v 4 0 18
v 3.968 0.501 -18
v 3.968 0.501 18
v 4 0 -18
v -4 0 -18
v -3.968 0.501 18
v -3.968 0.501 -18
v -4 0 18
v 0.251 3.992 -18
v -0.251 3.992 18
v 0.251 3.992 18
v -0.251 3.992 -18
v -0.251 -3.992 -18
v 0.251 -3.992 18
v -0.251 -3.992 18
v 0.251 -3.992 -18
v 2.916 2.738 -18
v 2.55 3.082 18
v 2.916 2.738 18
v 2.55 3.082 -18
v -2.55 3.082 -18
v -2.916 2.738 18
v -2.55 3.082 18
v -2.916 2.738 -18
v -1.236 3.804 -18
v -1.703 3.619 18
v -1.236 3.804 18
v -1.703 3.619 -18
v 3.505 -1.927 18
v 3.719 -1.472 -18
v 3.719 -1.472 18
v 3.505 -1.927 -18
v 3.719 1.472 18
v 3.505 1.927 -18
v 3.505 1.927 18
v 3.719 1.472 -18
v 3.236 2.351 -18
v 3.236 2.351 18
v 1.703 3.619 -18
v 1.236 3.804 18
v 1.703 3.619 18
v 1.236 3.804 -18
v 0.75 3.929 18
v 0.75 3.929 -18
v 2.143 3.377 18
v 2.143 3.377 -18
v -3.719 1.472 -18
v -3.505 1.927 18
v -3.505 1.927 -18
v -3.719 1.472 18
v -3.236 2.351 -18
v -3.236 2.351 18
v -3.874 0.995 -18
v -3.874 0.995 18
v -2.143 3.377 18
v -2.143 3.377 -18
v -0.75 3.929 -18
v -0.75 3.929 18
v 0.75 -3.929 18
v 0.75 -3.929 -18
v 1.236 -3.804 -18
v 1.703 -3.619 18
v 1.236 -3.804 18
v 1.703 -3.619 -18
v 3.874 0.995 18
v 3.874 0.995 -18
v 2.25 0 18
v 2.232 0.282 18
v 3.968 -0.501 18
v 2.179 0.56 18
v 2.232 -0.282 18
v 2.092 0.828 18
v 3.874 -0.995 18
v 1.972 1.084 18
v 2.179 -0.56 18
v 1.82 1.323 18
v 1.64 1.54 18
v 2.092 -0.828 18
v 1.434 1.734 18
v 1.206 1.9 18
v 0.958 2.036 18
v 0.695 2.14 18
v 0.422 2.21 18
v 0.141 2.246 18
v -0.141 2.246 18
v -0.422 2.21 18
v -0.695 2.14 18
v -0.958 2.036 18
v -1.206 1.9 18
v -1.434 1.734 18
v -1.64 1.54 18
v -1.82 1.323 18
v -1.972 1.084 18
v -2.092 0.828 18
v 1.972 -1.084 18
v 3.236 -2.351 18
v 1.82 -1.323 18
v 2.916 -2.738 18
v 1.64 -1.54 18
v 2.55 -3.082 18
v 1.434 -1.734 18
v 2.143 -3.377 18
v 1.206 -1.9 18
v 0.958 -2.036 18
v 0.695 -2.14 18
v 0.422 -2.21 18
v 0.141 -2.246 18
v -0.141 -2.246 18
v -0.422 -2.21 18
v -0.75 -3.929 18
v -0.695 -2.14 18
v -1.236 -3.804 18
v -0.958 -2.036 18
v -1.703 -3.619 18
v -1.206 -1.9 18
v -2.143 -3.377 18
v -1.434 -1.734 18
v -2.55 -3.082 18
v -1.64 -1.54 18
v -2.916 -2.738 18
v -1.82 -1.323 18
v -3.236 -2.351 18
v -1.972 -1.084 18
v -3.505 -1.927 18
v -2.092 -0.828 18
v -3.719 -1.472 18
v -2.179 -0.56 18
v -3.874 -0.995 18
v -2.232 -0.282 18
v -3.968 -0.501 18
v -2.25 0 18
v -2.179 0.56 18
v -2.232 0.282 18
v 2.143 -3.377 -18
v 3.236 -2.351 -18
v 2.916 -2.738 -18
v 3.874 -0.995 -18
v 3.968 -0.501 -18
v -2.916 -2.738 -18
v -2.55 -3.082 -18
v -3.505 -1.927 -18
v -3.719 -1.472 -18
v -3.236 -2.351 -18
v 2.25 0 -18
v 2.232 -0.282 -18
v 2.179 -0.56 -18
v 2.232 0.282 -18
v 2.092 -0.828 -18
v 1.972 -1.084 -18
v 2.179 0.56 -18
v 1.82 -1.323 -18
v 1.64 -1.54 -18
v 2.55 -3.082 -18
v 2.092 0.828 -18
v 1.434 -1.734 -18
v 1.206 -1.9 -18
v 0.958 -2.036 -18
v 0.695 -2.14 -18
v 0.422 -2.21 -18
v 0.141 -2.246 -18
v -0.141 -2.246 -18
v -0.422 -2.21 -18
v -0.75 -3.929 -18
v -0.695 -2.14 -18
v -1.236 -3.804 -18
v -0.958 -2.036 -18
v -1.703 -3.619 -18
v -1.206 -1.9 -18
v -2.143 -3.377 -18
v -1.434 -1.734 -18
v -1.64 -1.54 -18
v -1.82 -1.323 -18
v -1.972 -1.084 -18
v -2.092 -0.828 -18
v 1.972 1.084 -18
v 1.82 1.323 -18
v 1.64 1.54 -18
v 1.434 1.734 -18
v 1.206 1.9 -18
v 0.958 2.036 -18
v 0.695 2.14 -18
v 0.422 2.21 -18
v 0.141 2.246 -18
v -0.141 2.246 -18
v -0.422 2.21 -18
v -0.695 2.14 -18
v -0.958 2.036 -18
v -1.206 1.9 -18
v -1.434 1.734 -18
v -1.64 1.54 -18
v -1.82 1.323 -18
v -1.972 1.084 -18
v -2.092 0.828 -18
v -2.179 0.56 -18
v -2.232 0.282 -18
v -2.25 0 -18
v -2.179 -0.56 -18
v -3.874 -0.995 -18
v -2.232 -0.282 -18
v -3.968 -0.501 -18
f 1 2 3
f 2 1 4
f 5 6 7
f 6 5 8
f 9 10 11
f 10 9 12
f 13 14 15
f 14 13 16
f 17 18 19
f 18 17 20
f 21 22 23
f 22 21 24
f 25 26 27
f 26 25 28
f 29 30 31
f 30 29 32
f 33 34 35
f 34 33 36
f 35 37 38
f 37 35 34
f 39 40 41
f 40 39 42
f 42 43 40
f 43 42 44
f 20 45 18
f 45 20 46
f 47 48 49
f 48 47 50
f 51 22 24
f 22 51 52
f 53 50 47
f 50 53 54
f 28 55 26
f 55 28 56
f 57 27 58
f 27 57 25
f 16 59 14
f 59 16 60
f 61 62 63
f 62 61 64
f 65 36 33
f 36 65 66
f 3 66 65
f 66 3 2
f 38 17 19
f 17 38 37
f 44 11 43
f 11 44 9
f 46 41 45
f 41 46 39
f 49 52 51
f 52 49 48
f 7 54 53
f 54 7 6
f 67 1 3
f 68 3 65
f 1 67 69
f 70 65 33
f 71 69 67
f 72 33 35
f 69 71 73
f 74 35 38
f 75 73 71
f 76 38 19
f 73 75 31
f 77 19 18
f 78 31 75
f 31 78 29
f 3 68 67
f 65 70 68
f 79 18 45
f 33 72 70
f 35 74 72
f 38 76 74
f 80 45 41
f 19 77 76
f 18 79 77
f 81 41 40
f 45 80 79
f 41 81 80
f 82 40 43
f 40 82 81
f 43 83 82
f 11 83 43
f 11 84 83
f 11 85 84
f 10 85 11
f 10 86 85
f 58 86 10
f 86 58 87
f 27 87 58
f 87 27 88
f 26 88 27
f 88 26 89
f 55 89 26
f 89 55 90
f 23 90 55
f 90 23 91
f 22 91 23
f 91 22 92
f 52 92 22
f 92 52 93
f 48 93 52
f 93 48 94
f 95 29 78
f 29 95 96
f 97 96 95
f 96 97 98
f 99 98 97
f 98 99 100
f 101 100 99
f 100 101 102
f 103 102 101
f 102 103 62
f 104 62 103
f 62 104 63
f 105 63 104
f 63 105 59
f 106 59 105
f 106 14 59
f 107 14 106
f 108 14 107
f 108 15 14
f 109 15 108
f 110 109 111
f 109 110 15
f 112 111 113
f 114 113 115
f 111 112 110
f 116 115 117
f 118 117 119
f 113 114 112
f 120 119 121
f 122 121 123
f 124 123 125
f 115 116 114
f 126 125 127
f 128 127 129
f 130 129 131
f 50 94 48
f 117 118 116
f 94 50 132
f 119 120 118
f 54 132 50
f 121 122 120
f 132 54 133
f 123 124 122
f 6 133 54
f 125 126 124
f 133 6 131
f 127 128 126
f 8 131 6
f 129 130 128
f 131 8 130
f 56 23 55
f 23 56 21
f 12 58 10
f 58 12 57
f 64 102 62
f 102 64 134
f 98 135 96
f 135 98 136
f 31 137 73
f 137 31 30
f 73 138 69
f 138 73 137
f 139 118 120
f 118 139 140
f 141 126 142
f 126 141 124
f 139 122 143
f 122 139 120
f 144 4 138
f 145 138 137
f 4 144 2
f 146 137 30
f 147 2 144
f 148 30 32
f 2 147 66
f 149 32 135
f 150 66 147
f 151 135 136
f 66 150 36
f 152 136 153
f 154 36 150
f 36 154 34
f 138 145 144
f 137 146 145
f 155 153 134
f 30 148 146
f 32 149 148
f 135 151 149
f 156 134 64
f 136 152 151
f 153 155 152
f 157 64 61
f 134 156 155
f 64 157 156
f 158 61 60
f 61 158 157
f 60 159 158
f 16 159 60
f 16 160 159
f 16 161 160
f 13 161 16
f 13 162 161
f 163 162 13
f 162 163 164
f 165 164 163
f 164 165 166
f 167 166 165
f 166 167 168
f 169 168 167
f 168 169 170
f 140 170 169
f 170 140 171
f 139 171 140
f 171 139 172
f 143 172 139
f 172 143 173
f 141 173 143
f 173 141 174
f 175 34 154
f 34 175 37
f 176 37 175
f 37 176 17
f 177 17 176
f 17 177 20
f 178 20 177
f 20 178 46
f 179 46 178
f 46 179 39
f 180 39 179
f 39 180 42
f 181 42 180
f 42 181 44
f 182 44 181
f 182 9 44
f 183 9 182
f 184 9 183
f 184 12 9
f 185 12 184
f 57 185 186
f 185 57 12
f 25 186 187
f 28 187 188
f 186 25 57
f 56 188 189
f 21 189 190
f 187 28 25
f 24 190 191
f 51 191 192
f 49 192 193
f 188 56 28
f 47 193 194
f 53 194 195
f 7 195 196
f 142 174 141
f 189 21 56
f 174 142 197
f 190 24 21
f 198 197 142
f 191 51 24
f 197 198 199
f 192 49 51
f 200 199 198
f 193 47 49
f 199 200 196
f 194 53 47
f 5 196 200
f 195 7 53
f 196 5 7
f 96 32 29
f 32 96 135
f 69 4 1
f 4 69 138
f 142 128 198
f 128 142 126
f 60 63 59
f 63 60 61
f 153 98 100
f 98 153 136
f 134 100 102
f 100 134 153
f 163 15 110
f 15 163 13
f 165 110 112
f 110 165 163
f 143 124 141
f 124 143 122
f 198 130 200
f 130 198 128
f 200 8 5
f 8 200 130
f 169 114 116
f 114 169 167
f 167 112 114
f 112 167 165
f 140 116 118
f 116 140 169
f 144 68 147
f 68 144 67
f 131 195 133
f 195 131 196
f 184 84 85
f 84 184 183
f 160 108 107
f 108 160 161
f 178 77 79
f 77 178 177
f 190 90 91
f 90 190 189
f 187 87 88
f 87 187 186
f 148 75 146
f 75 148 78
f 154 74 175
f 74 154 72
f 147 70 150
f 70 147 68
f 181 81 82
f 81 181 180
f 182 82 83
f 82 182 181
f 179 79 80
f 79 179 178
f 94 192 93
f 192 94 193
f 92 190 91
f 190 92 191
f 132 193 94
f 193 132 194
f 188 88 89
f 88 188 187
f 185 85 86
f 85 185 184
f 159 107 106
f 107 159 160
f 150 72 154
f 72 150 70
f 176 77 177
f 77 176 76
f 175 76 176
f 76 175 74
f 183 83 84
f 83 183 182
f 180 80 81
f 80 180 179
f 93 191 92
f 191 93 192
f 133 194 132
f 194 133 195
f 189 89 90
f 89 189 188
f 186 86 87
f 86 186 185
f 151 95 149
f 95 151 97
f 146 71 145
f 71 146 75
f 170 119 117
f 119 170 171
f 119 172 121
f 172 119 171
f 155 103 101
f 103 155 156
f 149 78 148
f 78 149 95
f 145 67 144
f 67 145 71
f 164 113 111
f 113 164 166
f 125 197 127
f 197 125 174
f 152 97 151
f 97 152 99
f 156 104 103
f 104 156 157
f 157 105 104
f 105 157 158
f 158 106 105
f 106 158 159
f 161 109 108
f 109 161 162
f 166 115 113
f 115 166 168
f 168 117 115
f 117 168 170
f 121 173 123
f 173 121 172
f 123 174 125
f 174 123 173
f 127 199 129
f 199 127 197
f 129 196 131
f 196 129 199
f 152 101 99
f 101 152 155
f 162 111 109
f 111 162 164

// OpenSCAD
$fn = 50;


difference() {
	union() {
		translate(v = [0, 0, -18.0000000000]) {
			cylinder(h = 36, r = 4.0000000000);
		}
	}
	union() {
		translate(v = [0, 0, -100.0000000000]) {
			cylinder(h = 200, r = 2.2500000000);
		}
	}
}
